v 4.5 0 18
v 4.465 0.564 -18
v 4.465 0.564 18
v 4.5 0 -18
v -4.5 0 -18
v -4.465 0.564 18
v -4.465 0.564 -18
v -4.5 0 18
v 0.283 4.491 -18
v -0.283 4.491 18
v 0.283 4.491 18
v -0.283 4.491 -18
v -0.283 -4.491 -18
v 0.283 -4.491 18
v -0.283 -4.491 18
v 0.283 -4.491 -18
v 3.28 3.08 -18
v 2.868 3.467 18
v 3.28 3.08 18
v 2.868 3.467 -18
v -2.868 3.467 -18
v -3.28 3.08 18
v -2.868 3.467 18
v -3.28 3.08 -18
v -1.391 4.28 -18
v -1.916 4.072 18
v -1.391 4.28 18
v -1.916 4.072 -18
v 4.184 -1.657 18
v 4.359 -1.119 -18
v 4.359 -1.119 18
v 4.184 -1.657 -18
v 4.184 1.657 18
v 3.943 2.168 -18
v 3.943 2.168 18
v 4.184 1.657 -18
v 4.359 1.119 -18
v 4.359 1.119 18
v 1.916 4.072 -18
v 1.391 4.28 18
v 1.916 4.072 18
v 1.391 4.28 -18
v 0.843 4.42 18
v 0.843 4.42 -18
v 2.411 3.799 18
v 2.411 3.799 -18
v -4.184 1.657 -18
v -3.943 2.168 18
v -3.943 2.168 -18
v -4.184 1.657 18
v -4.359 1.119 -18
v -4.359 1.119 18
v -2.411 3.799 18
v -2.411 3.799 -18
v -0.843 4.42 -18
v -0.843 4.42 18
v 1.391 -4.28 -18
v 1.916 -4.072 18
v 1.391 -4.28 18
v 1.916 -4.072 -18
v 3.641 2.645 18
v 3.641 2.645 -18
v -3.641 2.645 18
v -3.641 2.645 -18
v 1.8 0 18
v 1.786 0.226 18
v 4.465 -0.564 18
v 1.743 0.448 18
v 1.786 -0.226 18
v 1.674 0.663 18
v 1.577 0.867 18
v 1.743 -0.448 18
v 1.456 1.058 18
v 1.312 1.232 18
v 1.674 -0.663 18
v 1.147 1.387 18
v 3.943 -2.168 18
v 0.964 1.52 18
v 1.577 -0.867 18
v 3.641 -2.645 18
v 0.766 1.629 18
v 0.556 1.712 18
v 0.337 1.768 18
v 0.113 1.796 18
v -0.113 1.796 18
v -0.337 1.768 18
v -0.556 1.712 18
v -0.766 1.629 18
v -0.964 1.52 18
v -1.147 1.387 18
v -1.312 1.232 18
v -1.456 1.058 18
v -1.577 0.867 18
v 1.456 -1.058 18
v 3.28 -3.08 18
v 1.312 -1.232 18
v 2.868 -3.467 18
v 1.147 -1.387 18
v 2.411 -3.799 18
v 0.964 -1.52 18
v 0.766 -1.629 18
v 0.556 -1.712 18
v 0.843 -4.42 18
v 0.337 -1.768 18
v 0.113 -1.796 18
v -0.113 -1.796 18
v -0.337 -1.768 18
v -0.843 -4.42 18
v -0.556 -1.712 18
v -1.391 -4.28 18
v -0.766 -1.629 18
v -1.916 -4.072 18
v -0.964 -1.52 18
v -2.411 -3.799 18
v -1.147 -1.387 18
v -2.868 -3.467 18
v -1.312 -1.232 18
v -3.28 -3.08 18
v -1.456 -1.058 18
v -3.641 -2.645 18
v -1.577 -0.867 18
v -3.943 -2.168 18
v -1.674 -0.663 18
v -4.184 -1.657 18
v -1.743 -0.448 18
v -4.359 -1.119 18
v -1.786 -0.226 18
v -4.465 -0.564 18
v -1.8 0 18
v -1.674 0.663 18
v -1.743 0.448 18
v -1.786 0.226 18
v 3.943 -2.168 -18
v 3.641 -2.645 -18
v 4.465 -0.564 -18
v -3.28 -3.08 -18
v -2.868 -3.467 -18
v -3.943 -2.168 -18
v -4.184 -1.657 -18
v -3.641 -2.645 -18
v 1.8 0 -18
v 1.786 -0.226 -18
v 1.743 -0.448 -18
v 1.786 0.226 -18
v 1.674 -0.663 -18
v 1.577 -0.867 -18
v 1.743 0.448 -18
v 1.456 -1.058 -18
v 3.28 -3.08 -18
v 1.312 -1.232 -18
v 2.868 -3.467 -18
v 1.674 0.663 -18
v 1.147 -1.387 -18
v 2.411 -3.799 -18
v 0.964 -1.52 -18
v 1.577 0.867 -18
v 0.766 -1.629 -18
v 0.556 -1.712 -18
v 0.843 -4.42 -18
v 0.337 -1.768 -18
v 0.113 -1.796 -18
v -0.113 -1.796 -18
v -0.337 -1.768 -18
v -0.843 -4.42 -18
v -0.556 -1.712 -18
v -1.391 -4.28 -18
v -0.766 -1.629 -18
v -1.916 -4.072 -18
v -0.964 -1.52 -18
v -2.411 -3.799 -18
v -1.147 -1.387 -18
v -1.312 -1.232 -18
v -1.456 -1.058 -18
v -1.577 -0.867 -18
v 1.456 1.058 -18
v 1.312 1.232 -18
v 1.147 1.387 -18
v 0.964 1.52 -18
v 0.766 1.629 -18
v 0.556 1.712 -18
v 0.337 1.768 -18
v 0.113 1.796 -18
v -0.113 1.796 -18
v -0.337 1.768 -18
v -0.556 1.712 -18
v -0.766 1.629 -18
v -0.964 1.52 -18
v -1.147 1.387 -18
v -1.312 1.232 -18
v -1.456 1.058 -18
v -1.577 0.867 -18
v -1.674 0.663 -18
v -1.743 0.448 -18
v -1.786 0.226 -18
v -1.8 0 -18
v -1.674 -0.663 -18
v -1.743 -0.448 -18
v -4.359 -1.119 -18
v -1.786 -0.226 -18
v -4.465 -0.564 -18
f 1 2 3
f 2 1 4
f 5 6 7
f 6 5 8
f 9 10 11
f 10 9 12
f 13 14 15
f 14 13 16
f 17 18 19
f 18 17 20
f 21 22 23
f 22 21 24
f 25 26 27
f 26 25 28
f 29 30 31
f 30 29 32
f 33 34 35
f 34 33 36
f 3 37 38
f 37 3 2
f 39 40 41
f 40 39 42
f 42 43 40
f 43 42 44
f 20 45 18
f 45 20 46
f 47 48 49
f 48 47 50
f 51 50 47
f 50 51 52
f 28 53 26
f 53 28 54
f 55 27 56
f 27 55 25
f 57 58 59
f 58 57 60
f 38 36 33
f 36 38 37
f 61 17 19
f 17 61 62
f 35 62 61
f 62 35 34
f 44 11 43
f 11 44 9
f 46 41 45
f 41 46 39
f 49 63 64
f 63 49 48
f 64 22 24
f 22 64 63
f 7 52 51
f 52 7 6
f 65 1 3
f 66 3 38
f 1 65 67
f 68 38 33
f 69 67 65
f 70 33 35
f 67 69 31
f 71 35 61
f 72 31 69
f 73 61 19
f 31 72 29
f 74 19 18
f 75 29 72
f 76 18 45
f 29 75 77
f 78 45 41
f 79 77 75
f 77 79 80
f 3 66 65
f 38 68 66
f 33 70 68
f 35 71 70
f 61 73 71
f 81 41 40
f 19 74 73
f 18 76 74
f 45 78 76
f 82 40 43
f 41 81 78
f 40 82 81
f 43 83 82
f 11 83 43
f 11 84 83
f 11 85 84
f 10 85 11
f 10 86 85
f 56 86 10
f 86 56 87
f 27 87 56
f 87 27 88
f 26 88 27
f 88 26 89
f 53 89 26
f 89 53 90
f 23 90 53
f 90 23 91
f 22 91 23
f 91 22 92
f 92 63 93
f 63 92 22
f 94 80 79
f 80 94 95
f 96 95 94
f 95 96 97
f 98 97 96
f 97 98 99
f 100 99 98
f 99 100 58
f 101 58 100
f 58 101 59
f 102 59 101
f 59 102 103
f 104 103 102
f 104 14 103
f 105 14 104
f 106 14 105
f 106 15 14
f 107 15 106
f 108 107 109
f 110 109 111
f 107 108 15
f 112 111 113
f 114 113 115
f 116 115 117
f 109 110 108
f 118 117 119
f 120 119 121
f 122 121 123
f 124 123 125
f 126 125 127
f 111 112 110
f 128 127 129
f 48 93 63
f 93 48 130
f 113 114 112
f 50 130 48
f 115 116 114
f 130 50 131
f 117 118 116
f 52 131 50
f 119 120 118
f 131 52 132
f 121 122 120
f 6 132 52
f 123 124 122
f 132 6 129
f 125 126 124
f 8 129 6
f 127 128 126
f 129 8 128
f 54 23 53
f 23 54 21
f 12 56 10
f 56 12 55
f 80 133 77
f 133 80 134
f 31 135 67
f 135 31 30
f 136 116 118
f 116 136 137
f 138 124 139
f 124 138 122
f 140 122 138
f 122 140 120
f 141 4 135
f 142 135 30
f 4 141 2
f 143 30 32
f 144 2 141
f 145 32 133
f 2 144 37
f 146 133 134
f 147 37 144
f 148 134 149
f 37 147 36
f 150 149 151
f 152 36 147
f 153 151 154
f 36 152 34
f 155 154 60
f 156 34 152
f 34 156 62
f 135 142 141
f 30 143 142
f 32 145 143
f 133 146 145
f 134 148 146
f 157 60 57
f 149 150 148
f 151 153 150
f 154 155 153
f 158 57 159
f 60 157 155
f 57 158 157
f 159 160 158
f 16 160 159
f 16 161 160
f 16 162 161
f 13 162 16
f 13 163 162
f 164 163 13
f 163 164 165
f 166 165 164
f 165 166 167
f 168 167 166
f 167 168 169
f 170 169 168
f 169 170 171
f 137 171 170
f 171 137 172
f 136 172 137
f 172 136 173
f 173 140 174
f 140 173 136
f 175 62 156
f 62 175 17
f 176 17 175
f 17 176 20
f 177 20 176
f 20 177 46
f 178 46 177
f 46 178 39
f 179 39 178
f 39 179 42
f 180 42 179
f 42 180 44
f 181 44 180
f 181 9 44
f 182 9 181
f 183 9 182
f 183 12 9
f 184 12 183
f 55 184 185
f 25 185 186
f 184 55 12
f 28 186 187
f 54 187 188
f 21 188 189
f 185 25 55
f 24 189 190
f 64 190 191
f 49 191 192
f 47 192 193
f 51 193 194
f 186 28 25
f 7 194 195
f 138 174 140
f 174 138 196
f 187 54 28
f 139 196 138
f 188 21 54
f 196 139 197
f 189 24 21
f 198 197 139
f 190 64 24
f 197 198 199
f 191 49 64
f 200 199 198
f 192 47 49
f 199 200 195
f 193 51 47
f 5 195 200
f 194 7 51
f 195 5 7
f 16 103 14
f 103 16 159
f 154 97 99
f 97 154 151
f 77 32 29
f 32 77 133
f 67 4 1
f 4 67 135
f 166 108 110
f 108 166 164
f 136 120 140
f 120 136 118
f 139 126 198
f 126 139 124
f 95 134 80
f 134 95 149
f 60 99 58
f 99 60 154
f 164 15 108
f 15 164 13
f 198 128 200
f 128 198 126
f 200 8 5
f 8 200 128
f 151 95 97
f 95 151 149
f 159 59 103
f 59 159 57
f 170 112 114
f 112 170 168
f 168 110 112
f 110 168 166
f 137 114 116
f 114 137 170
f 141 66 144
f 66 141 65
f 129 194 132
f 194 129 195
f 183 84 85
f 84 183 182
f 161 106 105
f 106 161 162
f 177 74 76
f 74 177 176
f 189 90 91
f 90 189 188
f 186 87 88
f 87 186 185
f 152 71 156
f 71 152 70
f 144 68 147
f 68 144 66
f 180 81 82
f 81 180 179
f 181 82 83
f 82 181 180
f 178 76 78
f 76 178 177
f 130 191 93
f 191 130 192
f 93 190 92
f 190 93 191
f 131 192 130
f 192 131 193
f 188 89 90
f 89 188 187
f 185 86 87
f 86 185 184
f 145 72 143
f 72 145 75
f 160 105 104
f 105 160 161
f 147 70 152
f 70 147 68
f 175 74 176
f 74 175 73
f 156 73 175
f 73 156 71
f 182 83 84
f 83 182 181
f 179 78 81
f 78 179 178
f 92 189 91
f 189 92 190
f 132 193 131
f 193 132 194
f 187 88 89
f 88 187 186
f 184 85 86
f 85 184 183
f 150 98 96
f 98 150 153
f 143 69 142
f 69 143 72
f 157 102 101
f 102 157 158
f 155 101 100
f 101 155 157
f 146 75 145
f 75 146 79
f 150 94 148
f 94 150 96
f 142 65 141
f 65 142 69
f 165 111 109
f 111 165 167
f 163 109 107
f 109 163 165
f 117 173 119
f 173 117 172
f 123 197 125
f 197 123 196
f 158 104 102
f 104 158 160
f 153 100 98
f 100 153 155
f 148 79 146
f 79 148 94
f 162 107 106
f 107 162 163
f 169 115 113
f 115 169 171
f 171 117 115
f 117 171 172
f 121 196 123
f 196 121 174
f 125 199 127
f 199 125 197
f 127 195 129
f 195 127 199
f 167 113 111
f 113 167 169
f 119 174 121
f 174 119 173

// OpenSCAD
$fn = 50;


difference() {
	union() {
		translate(v = [0, 0, -18.0000000000]) {
			cylinder(h = 36, r = 4.5000000000);
		}
	}
	union() {
		translate(v = [0, 0, -100.0000000000]) {
			cylinder(h = 200, r = 1.8000000000);
		}
	}
}
